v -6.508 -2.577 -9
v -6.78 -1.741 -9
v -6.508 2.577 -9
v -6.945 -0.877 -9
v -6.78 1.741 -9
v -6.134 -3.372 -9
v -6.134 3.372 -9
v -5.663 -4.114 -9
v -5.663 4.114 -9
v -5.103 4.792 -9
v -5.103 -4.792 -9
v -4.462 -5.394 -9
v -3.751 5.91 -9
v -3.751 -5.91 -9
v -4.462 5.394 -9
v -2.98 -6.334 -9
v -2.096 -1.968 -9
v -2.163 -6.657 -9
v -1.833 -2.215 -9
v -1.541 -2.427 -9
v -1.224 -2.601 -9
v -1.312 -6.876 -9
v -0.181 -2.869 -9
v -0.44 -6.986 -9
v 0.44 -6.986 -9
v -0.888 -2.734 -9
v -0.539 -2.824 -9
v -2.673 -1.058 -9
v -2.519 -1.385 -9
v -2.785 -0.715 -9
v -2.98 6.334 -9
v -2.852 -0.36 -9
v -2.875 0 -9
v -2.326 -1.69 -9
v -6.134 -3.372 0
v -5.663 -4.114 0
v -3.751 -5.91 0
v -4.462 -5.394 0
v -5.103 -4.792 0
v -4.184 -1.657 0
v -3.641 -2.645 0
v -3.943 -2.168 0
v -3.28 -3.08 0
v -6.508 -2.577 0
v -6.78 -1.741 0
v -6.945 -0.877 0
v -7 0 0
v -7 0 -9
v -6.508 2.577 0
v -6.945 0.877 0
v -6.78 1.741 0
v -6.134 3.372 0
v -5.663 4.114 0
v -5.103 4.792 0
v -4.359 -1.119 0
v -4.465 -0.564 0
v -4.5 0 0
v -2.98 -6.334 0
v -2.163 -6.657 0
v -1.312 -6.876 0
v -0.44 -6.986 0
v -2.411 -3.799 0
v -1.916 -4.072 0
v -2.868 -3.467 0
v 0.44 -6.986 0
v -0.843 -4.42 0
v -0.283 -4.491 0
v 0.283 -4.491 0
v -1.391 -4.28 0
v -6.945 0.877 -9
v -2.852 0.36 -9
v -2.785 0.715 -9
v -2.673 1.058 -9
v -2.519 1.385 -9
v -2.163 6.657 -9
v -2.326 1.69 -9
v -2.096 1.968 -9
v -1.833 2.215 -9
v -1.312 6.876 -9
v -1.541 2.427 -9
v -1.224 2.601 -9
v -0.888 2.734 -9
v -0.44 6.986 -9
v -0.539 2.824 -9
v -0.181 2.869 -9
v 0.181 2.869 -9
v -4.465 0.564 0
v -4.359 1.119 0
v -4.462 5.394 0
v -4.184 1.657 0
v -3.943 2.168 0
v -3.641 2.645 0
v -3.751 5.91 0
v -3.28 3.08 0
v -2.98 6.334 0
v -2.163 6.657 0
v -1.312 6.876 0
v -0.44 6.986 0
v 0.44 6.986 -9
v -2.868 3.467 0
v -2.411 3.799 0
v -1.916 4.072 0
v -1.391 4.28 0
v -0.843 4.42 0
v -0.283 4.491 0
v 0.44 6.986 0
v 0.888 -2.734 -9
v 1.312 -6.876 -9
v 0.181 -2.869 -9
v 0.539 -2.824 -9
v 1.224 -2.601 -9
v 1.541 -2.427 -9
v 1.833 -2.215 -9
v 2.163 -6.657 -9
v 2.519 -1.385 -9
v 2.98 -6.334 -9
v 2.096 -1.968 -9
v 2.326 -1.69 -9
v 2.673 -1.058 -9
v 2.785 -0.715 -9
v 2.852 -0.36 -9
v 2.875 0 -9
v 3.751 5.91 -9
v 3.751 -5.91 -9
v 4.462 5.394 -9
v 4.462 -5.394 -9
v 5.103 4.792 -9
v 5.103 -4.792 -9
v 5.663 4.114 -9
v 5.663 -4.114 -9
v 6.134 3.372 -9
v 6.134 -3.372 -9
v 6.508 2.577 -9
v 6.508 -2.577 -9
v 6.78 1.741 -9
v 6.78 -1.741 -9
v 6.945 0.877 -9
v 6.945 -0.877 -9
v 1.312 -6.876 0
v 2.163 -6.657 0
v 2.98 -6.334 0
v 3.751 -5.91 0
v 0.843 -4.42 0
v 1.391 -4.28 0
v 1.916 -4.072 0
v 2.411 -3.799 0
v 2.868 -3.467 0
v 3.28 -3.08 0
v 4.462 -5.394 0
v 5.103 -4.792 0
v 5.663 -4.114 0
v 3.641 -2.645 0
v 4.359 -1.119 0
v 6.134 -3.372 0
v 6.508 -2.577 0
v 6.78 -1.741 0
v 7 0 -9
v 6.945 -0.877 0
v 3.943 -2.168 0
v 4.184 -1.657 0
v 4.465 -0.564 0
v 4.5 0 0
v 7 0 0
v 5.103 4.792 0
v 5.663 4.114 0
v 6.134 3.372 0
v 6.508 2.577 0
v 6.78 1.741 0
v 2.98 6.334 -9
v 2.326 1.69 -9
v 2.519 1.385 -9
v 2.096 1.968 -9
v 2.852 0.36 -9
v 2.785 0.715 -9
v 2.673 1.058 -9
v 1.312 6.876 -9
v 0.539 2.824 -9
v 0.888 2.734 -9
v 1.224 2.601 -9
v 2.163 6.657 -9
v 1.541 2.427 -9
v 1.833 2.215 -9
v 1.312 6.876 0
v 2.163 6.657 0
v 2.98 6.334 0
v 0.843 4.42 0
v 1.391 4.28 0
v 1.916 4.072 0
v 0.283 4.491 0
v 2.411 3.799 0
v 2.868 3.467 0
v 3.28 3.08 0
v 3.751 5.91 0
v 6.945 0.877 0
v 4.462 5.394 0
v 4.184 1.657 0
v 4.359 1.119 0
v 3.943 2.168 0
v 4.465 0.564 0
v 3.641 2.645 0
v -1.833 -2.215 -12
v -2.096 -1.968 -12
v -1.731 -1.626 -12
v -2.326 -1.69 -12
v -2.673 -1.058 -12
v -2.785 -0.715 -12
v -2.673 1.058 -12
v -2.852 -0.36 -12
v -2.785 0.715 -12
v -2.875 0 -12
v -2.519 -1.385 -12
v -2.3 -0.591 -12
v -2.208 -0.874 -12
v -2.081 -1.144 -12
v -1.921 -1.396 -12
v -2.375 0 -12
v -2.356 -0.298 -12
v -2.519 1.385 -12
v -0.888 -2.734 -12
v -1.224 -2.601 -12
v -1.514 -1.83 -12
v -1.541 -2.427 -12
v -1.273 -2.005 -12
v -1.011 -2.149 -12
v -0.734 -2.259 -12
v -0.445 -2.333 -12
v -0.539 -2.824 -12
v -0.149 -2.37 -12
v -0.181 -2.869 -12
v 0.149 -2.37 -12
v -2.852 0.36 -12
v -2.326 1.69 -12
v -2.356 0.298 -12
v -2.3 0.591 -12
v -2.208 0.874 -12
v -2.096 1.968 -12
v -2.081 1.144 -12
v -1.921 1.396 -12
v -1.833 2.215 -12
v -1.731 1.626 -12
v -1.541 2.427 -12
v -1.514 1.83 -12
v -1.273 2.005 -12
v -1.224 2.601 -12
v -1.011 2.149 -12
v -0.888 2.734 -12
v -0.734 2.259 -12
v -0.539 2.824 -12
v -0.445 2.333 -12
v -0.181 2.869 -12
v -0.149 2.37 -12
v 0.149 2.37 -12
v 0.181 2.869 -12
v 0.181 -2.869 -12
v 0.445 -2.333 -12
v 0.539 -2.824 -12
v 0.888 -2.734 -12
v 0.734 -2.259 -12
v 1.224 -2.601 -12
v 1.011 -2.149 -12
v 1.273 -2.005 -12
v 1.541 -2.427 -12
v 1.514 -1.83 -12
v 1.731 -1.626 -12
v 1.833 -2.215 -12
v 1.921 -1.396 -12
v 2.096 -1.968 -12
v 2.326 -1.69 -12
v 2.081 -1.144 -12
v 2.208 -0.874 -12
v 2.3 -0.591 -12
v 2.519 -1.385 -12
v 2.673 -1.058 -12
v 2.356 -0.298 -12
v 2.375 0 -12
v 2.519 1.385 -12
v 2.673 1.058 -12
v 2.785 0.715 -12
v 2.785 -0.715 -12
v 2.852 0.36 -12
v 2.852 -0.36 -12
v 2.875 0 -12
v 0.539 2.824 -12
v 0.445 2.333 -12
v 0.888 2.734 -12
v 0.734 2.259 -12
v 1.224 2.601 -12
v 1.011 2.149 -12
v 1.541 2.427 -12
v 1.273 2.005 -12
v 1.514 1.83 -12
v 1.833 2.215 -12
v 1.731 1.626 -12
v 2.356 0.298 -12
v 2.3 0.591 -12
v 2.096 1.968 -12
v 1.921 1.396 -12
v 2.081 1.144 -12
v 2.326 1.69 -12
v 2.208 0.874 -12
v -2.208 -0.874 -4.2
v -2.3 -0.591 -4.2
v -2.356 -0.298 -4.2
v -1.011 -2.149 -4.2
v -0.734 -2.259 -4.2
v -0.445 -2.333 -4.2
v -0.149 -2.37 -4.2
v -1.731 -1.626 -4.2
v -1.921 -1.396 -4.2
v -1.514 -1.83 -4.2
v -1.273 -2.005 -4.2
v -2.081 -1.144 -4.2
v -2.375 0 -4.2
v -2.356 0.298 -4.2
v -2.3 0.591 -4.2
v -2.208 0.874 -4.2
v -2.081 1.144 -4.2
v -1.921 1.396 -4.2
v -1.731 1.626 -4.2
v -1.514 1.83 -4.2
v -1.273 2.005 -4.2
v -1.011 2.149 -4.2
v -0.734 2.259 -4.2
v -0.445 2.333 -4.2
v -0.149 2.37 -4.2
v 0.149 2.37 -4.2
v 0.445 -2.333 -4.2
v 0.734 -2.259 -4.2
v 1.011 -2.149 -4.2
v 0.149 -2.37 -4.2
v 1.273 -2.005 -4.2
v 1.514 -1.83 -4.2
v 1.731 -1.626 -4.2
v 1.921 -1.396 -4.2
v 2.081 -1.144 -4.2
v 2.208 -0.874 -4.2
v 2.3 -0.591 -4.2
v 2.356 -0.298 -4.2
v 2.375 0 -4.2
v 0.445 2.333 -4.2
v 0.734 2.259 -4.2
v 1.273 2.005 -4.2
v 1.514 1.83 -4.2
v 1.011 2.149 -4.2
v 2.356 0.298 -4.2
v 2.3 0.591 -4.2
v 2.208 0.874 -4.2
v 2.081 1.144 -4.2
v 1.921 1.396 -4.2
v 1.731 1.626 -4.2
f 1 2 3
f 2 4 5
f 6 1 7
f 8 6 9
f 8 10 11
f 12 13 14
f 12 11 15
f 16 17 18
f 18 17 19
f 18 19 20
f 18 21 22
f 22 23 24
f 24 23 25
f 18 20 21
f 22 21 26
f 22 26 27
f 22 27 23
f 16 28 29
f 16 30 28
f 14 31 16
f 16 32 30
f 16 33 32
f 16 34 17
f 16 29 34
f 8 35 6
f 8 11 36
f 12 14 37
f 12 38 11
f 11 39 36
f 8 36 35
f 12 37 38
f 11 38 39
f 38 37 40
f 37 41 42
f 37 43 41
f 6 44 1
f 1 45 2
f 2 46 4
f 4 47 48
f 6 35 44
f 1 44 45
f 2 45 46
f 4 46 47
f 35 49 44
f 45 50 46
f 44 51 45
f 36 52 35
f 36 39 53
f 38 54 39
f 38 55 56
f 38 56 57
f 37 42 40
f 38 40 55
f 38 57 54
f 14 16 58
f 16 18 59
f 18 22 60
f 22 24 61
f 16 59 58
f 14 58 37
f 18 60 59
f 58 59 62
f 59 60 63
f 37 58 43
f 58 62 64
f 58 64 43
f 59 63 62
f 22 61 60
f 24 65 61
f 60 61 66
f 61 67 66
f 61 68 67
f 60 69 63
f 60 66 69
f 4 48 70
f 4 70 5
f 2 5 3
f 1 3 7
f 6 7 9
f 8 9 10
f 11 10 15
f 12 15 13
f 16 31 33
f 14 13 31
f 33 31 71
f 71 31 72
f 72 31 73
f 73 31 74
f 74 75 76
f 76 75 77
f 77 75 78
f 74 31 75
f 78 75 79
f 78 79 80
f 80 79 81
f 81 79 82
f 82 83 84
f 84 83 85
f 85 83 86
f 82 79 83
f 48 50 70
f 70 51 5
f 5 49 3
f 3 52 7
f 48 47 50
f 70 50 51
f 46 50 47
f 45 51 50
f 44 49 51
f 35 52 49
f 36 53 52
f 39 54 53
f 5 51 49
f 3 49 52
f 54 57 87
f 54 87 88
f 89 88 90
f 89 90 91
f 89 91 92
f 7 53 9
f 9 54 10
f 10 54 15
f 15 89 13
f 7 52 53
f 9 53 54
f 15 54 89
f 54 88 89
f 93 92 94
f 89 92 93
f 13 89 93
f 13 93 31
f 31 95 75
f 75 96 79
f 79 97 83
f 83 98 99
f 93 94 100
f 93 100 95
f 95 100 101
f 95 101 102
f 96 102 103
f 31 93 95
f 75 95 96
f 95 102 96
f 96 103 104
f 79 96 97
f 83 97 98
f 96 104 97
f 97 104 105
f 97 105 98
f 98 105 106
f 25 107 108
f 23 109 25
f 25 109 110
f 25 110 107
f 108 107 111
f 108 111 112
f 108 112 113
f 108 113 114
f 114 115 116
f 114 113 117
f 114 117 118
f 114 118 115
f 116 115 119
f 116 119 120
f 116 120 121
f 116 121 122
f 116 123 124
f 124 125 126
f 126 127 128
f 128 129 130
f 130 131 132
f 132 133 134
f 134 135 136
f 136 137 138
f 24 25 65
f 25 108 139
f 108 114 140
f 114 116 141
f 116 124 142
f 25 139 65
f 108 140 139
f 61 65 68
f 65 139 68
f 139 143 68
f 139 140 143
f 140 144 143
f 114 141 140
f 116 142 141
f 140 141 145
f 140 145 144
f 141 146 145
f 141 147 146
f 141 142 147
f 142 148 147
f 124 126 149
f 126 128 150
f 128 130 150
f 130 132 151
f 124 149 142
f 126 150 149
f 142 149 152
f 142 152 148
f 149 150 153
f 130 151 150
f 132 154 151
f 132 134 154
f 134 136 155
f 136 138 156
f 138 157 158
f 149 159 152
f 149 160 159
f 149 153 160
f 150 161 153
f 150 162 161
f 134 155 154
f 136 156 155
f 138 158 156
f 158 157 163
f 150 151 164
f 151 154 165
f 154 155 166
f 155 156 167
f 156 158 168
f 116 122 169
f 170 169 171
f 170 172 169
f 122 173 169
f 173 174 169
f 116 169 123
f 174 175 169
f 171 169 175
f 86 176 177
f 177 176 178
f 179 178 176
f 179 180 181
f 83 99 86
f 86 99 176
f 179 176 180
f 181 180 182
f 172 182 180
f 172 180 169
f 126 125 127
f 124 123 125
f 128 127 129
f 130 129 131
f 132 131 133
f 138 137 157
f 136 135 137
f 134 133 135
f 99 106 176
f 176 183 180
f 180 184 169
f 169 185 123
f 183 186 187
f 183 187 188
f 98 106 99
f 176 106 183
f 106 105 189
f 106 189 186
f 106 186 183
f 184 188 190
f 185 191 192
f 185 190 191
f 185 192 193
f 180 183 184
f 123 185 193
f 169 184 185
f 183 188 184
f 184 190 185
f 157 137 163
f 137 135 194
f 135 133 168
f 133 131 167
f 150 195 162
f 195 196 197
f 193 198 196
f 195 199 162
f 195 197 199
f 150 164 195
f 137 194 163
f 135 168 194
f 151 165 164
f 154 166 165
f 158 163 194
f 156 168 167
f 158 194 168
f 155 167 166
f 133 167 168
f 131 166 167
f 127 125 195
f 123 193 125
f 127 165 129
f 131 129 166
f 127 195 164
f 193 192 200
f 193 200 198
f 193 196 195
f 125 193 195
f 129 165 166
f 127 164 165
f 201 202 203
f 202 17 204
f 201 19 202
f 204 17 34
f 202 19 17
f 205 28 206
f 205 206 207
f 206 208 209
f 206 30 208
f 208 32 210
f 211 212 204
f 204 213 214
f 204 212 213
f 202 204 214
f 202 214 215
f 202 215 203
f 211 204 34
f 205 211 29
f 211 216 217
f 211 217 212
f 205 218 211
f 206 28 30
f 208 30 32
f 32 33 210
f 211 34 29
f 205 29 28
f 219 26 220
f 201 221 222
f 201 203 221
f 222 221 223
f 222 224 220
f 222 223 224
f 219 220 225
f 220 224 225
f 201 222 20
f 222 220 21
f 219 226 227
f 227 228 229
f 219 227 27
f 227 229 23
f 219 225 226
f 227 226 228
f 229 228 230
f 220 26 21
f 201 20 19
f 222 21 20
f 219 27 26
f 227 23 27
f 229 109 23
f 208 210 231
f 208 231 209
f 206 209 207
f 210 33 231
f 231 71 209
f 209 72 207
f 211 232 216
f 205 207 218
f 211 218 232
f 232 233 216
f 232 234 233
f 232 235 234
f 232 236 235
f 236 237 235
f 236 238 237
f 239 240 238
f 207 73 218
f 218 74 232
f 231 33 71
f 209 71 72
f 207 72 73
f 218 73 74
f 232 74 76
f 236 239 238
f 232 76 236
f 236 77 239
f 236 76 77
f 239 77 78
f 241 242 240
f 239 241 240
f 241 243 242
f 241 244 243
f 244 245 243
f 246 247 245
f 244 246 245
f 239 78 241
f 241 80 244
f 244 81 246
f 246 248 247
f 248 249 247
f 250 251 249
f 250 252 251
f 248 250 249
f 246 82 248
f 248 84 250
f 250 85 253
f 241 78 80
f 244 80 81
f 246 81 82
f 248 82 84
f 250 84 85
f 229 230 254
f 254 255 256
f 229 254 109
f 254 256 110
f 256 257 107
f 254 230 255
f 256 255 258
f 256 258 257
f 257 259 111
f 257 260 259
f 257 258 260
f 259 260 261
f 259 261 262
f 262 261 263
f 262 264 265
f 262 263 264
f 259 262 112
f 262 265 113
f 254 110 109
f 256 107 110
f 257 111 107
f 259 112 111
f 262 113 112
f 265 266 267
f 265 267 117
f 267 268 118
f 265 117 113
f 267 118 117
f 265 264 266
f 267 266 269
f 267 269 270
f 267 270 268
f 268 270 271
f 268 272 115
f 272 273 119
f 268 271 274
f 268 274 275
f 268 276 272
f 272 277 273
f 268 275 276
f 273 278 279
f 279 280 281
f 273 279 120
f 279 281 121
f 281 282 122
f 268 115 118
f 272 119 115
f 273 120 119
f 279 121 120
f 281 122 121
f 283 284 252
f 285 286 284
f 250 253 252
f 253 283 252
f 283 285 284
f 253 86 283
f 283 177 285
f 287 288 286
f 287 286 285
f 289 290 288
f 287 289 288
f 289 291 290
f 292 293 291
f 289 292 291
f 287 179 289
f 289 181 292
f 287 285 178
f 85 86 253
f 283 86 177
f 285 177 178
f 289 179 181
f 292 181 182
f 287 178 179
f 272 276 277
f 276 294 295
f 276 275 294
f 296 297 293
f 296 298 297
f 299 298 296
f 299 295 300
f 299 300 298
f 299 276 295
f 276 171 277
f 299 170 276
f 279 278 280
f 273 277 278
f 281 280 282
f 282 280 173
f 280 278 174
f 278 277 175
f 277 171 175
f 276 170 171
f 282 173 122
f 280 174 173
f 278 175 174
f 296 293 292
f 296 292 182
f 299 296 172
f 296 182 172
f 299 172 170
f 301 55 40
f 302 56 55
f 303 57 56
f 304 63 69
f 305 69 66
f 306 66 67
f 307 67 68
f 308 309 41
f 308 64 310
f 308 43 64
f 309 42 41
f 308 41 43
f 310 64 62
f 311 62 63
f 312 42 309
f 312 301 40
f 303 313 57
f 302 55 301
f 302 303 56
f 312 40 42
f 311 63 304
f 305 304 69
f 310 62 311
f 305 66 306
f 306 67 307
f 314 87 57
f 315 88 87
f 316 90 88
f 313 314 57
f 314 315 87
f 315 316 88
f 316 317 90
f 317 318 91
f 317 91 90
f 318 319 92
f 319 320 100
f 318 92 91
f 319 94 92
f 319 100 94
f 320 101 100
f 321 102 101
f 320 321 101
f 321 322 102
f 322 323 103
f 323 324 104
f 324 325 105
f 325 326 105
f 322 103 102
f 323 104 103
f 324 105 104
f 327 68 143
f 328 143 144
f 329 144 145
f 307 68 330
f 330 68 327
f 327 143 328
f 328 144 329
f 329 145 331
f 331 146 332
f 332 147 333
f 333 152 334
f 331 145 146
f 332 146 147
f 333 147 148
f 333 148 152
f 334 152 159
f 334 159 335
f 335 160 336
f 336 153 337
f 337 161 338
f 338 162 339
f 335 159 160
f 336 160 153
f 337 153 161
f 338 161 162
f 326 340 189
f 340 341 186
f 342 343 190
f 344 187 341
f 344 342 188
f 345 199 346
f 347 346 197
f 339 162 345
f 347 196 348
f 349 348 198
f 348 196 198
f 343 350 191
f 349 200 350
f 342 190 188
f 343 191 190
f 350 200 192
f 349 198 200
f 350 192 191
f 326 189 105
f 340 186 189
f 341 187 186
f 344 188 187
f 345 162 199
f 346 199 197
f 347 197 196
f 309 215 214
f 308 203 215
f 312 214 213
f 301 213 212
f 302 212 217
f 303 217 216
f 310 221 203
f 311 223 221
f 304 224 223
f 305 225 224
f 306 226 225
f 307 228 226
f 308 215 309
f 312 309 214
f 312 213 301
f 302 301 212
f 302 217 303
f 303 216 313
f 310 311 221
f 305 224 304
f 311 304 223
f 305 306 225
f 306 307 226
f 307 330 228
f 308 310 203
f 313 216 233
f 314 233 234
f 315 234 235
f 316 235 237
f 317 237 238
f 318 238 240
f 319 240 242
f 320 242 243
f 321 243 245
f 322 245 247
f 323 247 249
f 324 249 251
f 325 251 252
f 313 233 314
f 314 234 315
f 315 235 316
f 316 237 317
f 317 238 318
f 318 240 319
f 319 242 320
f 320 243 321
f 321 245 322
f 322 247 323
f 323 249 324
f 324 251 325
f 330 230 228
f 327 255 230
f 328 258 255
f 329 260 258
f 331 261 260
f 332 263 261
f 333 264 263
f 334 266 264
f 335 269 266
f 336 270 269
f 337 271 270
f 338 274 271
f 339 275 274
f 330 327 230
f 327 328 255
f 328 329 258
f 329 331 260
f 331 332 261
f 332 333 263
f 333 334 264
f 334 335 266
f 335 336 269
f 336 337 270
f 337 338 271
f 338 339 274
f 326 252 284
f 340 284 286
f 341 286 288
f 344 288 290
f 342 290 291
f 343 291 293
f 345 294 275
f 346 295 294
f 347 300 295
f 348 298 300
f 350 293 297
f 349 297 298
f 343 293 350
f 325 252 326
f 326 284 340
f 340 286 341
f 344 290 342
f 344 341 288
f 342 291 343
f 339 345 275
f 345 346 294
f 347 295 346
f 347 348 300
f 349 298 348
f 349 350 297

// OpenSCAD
$fn = 50;

difference() {
	union() {
		translate(v = [0, 0, -9.0]) {
			cylinder(h = 9, r = 7.0);
		}
		#translate(v = [0, 0, -12.0]) {
			cylinder(h = 12, r = 2.875);
		}
	}
	union() {
		translate(v = [0, 0, 0]) {
			rotate(a = [0, 0, 0]) {
				difference() {
					union() {
						translate(v = [0, 0, -12.0]) {
							cylinder(h = 12, r = 2.25);
						}
						translate(v = [0, 0, -4.2]) {
							cylinder(h = 4.2, r1 = 2.375, r2 = 4.5);
						}
						translate(v = [0, 0, -12.0]) {
							cylinder(h = 12, r = 2.375);
						}
						translate(v = [0, 0, -12.0]) {
							cylinder(h = 12, r = 2.25);
						}
					}
					union();
				}
			}
		}
	}
}
